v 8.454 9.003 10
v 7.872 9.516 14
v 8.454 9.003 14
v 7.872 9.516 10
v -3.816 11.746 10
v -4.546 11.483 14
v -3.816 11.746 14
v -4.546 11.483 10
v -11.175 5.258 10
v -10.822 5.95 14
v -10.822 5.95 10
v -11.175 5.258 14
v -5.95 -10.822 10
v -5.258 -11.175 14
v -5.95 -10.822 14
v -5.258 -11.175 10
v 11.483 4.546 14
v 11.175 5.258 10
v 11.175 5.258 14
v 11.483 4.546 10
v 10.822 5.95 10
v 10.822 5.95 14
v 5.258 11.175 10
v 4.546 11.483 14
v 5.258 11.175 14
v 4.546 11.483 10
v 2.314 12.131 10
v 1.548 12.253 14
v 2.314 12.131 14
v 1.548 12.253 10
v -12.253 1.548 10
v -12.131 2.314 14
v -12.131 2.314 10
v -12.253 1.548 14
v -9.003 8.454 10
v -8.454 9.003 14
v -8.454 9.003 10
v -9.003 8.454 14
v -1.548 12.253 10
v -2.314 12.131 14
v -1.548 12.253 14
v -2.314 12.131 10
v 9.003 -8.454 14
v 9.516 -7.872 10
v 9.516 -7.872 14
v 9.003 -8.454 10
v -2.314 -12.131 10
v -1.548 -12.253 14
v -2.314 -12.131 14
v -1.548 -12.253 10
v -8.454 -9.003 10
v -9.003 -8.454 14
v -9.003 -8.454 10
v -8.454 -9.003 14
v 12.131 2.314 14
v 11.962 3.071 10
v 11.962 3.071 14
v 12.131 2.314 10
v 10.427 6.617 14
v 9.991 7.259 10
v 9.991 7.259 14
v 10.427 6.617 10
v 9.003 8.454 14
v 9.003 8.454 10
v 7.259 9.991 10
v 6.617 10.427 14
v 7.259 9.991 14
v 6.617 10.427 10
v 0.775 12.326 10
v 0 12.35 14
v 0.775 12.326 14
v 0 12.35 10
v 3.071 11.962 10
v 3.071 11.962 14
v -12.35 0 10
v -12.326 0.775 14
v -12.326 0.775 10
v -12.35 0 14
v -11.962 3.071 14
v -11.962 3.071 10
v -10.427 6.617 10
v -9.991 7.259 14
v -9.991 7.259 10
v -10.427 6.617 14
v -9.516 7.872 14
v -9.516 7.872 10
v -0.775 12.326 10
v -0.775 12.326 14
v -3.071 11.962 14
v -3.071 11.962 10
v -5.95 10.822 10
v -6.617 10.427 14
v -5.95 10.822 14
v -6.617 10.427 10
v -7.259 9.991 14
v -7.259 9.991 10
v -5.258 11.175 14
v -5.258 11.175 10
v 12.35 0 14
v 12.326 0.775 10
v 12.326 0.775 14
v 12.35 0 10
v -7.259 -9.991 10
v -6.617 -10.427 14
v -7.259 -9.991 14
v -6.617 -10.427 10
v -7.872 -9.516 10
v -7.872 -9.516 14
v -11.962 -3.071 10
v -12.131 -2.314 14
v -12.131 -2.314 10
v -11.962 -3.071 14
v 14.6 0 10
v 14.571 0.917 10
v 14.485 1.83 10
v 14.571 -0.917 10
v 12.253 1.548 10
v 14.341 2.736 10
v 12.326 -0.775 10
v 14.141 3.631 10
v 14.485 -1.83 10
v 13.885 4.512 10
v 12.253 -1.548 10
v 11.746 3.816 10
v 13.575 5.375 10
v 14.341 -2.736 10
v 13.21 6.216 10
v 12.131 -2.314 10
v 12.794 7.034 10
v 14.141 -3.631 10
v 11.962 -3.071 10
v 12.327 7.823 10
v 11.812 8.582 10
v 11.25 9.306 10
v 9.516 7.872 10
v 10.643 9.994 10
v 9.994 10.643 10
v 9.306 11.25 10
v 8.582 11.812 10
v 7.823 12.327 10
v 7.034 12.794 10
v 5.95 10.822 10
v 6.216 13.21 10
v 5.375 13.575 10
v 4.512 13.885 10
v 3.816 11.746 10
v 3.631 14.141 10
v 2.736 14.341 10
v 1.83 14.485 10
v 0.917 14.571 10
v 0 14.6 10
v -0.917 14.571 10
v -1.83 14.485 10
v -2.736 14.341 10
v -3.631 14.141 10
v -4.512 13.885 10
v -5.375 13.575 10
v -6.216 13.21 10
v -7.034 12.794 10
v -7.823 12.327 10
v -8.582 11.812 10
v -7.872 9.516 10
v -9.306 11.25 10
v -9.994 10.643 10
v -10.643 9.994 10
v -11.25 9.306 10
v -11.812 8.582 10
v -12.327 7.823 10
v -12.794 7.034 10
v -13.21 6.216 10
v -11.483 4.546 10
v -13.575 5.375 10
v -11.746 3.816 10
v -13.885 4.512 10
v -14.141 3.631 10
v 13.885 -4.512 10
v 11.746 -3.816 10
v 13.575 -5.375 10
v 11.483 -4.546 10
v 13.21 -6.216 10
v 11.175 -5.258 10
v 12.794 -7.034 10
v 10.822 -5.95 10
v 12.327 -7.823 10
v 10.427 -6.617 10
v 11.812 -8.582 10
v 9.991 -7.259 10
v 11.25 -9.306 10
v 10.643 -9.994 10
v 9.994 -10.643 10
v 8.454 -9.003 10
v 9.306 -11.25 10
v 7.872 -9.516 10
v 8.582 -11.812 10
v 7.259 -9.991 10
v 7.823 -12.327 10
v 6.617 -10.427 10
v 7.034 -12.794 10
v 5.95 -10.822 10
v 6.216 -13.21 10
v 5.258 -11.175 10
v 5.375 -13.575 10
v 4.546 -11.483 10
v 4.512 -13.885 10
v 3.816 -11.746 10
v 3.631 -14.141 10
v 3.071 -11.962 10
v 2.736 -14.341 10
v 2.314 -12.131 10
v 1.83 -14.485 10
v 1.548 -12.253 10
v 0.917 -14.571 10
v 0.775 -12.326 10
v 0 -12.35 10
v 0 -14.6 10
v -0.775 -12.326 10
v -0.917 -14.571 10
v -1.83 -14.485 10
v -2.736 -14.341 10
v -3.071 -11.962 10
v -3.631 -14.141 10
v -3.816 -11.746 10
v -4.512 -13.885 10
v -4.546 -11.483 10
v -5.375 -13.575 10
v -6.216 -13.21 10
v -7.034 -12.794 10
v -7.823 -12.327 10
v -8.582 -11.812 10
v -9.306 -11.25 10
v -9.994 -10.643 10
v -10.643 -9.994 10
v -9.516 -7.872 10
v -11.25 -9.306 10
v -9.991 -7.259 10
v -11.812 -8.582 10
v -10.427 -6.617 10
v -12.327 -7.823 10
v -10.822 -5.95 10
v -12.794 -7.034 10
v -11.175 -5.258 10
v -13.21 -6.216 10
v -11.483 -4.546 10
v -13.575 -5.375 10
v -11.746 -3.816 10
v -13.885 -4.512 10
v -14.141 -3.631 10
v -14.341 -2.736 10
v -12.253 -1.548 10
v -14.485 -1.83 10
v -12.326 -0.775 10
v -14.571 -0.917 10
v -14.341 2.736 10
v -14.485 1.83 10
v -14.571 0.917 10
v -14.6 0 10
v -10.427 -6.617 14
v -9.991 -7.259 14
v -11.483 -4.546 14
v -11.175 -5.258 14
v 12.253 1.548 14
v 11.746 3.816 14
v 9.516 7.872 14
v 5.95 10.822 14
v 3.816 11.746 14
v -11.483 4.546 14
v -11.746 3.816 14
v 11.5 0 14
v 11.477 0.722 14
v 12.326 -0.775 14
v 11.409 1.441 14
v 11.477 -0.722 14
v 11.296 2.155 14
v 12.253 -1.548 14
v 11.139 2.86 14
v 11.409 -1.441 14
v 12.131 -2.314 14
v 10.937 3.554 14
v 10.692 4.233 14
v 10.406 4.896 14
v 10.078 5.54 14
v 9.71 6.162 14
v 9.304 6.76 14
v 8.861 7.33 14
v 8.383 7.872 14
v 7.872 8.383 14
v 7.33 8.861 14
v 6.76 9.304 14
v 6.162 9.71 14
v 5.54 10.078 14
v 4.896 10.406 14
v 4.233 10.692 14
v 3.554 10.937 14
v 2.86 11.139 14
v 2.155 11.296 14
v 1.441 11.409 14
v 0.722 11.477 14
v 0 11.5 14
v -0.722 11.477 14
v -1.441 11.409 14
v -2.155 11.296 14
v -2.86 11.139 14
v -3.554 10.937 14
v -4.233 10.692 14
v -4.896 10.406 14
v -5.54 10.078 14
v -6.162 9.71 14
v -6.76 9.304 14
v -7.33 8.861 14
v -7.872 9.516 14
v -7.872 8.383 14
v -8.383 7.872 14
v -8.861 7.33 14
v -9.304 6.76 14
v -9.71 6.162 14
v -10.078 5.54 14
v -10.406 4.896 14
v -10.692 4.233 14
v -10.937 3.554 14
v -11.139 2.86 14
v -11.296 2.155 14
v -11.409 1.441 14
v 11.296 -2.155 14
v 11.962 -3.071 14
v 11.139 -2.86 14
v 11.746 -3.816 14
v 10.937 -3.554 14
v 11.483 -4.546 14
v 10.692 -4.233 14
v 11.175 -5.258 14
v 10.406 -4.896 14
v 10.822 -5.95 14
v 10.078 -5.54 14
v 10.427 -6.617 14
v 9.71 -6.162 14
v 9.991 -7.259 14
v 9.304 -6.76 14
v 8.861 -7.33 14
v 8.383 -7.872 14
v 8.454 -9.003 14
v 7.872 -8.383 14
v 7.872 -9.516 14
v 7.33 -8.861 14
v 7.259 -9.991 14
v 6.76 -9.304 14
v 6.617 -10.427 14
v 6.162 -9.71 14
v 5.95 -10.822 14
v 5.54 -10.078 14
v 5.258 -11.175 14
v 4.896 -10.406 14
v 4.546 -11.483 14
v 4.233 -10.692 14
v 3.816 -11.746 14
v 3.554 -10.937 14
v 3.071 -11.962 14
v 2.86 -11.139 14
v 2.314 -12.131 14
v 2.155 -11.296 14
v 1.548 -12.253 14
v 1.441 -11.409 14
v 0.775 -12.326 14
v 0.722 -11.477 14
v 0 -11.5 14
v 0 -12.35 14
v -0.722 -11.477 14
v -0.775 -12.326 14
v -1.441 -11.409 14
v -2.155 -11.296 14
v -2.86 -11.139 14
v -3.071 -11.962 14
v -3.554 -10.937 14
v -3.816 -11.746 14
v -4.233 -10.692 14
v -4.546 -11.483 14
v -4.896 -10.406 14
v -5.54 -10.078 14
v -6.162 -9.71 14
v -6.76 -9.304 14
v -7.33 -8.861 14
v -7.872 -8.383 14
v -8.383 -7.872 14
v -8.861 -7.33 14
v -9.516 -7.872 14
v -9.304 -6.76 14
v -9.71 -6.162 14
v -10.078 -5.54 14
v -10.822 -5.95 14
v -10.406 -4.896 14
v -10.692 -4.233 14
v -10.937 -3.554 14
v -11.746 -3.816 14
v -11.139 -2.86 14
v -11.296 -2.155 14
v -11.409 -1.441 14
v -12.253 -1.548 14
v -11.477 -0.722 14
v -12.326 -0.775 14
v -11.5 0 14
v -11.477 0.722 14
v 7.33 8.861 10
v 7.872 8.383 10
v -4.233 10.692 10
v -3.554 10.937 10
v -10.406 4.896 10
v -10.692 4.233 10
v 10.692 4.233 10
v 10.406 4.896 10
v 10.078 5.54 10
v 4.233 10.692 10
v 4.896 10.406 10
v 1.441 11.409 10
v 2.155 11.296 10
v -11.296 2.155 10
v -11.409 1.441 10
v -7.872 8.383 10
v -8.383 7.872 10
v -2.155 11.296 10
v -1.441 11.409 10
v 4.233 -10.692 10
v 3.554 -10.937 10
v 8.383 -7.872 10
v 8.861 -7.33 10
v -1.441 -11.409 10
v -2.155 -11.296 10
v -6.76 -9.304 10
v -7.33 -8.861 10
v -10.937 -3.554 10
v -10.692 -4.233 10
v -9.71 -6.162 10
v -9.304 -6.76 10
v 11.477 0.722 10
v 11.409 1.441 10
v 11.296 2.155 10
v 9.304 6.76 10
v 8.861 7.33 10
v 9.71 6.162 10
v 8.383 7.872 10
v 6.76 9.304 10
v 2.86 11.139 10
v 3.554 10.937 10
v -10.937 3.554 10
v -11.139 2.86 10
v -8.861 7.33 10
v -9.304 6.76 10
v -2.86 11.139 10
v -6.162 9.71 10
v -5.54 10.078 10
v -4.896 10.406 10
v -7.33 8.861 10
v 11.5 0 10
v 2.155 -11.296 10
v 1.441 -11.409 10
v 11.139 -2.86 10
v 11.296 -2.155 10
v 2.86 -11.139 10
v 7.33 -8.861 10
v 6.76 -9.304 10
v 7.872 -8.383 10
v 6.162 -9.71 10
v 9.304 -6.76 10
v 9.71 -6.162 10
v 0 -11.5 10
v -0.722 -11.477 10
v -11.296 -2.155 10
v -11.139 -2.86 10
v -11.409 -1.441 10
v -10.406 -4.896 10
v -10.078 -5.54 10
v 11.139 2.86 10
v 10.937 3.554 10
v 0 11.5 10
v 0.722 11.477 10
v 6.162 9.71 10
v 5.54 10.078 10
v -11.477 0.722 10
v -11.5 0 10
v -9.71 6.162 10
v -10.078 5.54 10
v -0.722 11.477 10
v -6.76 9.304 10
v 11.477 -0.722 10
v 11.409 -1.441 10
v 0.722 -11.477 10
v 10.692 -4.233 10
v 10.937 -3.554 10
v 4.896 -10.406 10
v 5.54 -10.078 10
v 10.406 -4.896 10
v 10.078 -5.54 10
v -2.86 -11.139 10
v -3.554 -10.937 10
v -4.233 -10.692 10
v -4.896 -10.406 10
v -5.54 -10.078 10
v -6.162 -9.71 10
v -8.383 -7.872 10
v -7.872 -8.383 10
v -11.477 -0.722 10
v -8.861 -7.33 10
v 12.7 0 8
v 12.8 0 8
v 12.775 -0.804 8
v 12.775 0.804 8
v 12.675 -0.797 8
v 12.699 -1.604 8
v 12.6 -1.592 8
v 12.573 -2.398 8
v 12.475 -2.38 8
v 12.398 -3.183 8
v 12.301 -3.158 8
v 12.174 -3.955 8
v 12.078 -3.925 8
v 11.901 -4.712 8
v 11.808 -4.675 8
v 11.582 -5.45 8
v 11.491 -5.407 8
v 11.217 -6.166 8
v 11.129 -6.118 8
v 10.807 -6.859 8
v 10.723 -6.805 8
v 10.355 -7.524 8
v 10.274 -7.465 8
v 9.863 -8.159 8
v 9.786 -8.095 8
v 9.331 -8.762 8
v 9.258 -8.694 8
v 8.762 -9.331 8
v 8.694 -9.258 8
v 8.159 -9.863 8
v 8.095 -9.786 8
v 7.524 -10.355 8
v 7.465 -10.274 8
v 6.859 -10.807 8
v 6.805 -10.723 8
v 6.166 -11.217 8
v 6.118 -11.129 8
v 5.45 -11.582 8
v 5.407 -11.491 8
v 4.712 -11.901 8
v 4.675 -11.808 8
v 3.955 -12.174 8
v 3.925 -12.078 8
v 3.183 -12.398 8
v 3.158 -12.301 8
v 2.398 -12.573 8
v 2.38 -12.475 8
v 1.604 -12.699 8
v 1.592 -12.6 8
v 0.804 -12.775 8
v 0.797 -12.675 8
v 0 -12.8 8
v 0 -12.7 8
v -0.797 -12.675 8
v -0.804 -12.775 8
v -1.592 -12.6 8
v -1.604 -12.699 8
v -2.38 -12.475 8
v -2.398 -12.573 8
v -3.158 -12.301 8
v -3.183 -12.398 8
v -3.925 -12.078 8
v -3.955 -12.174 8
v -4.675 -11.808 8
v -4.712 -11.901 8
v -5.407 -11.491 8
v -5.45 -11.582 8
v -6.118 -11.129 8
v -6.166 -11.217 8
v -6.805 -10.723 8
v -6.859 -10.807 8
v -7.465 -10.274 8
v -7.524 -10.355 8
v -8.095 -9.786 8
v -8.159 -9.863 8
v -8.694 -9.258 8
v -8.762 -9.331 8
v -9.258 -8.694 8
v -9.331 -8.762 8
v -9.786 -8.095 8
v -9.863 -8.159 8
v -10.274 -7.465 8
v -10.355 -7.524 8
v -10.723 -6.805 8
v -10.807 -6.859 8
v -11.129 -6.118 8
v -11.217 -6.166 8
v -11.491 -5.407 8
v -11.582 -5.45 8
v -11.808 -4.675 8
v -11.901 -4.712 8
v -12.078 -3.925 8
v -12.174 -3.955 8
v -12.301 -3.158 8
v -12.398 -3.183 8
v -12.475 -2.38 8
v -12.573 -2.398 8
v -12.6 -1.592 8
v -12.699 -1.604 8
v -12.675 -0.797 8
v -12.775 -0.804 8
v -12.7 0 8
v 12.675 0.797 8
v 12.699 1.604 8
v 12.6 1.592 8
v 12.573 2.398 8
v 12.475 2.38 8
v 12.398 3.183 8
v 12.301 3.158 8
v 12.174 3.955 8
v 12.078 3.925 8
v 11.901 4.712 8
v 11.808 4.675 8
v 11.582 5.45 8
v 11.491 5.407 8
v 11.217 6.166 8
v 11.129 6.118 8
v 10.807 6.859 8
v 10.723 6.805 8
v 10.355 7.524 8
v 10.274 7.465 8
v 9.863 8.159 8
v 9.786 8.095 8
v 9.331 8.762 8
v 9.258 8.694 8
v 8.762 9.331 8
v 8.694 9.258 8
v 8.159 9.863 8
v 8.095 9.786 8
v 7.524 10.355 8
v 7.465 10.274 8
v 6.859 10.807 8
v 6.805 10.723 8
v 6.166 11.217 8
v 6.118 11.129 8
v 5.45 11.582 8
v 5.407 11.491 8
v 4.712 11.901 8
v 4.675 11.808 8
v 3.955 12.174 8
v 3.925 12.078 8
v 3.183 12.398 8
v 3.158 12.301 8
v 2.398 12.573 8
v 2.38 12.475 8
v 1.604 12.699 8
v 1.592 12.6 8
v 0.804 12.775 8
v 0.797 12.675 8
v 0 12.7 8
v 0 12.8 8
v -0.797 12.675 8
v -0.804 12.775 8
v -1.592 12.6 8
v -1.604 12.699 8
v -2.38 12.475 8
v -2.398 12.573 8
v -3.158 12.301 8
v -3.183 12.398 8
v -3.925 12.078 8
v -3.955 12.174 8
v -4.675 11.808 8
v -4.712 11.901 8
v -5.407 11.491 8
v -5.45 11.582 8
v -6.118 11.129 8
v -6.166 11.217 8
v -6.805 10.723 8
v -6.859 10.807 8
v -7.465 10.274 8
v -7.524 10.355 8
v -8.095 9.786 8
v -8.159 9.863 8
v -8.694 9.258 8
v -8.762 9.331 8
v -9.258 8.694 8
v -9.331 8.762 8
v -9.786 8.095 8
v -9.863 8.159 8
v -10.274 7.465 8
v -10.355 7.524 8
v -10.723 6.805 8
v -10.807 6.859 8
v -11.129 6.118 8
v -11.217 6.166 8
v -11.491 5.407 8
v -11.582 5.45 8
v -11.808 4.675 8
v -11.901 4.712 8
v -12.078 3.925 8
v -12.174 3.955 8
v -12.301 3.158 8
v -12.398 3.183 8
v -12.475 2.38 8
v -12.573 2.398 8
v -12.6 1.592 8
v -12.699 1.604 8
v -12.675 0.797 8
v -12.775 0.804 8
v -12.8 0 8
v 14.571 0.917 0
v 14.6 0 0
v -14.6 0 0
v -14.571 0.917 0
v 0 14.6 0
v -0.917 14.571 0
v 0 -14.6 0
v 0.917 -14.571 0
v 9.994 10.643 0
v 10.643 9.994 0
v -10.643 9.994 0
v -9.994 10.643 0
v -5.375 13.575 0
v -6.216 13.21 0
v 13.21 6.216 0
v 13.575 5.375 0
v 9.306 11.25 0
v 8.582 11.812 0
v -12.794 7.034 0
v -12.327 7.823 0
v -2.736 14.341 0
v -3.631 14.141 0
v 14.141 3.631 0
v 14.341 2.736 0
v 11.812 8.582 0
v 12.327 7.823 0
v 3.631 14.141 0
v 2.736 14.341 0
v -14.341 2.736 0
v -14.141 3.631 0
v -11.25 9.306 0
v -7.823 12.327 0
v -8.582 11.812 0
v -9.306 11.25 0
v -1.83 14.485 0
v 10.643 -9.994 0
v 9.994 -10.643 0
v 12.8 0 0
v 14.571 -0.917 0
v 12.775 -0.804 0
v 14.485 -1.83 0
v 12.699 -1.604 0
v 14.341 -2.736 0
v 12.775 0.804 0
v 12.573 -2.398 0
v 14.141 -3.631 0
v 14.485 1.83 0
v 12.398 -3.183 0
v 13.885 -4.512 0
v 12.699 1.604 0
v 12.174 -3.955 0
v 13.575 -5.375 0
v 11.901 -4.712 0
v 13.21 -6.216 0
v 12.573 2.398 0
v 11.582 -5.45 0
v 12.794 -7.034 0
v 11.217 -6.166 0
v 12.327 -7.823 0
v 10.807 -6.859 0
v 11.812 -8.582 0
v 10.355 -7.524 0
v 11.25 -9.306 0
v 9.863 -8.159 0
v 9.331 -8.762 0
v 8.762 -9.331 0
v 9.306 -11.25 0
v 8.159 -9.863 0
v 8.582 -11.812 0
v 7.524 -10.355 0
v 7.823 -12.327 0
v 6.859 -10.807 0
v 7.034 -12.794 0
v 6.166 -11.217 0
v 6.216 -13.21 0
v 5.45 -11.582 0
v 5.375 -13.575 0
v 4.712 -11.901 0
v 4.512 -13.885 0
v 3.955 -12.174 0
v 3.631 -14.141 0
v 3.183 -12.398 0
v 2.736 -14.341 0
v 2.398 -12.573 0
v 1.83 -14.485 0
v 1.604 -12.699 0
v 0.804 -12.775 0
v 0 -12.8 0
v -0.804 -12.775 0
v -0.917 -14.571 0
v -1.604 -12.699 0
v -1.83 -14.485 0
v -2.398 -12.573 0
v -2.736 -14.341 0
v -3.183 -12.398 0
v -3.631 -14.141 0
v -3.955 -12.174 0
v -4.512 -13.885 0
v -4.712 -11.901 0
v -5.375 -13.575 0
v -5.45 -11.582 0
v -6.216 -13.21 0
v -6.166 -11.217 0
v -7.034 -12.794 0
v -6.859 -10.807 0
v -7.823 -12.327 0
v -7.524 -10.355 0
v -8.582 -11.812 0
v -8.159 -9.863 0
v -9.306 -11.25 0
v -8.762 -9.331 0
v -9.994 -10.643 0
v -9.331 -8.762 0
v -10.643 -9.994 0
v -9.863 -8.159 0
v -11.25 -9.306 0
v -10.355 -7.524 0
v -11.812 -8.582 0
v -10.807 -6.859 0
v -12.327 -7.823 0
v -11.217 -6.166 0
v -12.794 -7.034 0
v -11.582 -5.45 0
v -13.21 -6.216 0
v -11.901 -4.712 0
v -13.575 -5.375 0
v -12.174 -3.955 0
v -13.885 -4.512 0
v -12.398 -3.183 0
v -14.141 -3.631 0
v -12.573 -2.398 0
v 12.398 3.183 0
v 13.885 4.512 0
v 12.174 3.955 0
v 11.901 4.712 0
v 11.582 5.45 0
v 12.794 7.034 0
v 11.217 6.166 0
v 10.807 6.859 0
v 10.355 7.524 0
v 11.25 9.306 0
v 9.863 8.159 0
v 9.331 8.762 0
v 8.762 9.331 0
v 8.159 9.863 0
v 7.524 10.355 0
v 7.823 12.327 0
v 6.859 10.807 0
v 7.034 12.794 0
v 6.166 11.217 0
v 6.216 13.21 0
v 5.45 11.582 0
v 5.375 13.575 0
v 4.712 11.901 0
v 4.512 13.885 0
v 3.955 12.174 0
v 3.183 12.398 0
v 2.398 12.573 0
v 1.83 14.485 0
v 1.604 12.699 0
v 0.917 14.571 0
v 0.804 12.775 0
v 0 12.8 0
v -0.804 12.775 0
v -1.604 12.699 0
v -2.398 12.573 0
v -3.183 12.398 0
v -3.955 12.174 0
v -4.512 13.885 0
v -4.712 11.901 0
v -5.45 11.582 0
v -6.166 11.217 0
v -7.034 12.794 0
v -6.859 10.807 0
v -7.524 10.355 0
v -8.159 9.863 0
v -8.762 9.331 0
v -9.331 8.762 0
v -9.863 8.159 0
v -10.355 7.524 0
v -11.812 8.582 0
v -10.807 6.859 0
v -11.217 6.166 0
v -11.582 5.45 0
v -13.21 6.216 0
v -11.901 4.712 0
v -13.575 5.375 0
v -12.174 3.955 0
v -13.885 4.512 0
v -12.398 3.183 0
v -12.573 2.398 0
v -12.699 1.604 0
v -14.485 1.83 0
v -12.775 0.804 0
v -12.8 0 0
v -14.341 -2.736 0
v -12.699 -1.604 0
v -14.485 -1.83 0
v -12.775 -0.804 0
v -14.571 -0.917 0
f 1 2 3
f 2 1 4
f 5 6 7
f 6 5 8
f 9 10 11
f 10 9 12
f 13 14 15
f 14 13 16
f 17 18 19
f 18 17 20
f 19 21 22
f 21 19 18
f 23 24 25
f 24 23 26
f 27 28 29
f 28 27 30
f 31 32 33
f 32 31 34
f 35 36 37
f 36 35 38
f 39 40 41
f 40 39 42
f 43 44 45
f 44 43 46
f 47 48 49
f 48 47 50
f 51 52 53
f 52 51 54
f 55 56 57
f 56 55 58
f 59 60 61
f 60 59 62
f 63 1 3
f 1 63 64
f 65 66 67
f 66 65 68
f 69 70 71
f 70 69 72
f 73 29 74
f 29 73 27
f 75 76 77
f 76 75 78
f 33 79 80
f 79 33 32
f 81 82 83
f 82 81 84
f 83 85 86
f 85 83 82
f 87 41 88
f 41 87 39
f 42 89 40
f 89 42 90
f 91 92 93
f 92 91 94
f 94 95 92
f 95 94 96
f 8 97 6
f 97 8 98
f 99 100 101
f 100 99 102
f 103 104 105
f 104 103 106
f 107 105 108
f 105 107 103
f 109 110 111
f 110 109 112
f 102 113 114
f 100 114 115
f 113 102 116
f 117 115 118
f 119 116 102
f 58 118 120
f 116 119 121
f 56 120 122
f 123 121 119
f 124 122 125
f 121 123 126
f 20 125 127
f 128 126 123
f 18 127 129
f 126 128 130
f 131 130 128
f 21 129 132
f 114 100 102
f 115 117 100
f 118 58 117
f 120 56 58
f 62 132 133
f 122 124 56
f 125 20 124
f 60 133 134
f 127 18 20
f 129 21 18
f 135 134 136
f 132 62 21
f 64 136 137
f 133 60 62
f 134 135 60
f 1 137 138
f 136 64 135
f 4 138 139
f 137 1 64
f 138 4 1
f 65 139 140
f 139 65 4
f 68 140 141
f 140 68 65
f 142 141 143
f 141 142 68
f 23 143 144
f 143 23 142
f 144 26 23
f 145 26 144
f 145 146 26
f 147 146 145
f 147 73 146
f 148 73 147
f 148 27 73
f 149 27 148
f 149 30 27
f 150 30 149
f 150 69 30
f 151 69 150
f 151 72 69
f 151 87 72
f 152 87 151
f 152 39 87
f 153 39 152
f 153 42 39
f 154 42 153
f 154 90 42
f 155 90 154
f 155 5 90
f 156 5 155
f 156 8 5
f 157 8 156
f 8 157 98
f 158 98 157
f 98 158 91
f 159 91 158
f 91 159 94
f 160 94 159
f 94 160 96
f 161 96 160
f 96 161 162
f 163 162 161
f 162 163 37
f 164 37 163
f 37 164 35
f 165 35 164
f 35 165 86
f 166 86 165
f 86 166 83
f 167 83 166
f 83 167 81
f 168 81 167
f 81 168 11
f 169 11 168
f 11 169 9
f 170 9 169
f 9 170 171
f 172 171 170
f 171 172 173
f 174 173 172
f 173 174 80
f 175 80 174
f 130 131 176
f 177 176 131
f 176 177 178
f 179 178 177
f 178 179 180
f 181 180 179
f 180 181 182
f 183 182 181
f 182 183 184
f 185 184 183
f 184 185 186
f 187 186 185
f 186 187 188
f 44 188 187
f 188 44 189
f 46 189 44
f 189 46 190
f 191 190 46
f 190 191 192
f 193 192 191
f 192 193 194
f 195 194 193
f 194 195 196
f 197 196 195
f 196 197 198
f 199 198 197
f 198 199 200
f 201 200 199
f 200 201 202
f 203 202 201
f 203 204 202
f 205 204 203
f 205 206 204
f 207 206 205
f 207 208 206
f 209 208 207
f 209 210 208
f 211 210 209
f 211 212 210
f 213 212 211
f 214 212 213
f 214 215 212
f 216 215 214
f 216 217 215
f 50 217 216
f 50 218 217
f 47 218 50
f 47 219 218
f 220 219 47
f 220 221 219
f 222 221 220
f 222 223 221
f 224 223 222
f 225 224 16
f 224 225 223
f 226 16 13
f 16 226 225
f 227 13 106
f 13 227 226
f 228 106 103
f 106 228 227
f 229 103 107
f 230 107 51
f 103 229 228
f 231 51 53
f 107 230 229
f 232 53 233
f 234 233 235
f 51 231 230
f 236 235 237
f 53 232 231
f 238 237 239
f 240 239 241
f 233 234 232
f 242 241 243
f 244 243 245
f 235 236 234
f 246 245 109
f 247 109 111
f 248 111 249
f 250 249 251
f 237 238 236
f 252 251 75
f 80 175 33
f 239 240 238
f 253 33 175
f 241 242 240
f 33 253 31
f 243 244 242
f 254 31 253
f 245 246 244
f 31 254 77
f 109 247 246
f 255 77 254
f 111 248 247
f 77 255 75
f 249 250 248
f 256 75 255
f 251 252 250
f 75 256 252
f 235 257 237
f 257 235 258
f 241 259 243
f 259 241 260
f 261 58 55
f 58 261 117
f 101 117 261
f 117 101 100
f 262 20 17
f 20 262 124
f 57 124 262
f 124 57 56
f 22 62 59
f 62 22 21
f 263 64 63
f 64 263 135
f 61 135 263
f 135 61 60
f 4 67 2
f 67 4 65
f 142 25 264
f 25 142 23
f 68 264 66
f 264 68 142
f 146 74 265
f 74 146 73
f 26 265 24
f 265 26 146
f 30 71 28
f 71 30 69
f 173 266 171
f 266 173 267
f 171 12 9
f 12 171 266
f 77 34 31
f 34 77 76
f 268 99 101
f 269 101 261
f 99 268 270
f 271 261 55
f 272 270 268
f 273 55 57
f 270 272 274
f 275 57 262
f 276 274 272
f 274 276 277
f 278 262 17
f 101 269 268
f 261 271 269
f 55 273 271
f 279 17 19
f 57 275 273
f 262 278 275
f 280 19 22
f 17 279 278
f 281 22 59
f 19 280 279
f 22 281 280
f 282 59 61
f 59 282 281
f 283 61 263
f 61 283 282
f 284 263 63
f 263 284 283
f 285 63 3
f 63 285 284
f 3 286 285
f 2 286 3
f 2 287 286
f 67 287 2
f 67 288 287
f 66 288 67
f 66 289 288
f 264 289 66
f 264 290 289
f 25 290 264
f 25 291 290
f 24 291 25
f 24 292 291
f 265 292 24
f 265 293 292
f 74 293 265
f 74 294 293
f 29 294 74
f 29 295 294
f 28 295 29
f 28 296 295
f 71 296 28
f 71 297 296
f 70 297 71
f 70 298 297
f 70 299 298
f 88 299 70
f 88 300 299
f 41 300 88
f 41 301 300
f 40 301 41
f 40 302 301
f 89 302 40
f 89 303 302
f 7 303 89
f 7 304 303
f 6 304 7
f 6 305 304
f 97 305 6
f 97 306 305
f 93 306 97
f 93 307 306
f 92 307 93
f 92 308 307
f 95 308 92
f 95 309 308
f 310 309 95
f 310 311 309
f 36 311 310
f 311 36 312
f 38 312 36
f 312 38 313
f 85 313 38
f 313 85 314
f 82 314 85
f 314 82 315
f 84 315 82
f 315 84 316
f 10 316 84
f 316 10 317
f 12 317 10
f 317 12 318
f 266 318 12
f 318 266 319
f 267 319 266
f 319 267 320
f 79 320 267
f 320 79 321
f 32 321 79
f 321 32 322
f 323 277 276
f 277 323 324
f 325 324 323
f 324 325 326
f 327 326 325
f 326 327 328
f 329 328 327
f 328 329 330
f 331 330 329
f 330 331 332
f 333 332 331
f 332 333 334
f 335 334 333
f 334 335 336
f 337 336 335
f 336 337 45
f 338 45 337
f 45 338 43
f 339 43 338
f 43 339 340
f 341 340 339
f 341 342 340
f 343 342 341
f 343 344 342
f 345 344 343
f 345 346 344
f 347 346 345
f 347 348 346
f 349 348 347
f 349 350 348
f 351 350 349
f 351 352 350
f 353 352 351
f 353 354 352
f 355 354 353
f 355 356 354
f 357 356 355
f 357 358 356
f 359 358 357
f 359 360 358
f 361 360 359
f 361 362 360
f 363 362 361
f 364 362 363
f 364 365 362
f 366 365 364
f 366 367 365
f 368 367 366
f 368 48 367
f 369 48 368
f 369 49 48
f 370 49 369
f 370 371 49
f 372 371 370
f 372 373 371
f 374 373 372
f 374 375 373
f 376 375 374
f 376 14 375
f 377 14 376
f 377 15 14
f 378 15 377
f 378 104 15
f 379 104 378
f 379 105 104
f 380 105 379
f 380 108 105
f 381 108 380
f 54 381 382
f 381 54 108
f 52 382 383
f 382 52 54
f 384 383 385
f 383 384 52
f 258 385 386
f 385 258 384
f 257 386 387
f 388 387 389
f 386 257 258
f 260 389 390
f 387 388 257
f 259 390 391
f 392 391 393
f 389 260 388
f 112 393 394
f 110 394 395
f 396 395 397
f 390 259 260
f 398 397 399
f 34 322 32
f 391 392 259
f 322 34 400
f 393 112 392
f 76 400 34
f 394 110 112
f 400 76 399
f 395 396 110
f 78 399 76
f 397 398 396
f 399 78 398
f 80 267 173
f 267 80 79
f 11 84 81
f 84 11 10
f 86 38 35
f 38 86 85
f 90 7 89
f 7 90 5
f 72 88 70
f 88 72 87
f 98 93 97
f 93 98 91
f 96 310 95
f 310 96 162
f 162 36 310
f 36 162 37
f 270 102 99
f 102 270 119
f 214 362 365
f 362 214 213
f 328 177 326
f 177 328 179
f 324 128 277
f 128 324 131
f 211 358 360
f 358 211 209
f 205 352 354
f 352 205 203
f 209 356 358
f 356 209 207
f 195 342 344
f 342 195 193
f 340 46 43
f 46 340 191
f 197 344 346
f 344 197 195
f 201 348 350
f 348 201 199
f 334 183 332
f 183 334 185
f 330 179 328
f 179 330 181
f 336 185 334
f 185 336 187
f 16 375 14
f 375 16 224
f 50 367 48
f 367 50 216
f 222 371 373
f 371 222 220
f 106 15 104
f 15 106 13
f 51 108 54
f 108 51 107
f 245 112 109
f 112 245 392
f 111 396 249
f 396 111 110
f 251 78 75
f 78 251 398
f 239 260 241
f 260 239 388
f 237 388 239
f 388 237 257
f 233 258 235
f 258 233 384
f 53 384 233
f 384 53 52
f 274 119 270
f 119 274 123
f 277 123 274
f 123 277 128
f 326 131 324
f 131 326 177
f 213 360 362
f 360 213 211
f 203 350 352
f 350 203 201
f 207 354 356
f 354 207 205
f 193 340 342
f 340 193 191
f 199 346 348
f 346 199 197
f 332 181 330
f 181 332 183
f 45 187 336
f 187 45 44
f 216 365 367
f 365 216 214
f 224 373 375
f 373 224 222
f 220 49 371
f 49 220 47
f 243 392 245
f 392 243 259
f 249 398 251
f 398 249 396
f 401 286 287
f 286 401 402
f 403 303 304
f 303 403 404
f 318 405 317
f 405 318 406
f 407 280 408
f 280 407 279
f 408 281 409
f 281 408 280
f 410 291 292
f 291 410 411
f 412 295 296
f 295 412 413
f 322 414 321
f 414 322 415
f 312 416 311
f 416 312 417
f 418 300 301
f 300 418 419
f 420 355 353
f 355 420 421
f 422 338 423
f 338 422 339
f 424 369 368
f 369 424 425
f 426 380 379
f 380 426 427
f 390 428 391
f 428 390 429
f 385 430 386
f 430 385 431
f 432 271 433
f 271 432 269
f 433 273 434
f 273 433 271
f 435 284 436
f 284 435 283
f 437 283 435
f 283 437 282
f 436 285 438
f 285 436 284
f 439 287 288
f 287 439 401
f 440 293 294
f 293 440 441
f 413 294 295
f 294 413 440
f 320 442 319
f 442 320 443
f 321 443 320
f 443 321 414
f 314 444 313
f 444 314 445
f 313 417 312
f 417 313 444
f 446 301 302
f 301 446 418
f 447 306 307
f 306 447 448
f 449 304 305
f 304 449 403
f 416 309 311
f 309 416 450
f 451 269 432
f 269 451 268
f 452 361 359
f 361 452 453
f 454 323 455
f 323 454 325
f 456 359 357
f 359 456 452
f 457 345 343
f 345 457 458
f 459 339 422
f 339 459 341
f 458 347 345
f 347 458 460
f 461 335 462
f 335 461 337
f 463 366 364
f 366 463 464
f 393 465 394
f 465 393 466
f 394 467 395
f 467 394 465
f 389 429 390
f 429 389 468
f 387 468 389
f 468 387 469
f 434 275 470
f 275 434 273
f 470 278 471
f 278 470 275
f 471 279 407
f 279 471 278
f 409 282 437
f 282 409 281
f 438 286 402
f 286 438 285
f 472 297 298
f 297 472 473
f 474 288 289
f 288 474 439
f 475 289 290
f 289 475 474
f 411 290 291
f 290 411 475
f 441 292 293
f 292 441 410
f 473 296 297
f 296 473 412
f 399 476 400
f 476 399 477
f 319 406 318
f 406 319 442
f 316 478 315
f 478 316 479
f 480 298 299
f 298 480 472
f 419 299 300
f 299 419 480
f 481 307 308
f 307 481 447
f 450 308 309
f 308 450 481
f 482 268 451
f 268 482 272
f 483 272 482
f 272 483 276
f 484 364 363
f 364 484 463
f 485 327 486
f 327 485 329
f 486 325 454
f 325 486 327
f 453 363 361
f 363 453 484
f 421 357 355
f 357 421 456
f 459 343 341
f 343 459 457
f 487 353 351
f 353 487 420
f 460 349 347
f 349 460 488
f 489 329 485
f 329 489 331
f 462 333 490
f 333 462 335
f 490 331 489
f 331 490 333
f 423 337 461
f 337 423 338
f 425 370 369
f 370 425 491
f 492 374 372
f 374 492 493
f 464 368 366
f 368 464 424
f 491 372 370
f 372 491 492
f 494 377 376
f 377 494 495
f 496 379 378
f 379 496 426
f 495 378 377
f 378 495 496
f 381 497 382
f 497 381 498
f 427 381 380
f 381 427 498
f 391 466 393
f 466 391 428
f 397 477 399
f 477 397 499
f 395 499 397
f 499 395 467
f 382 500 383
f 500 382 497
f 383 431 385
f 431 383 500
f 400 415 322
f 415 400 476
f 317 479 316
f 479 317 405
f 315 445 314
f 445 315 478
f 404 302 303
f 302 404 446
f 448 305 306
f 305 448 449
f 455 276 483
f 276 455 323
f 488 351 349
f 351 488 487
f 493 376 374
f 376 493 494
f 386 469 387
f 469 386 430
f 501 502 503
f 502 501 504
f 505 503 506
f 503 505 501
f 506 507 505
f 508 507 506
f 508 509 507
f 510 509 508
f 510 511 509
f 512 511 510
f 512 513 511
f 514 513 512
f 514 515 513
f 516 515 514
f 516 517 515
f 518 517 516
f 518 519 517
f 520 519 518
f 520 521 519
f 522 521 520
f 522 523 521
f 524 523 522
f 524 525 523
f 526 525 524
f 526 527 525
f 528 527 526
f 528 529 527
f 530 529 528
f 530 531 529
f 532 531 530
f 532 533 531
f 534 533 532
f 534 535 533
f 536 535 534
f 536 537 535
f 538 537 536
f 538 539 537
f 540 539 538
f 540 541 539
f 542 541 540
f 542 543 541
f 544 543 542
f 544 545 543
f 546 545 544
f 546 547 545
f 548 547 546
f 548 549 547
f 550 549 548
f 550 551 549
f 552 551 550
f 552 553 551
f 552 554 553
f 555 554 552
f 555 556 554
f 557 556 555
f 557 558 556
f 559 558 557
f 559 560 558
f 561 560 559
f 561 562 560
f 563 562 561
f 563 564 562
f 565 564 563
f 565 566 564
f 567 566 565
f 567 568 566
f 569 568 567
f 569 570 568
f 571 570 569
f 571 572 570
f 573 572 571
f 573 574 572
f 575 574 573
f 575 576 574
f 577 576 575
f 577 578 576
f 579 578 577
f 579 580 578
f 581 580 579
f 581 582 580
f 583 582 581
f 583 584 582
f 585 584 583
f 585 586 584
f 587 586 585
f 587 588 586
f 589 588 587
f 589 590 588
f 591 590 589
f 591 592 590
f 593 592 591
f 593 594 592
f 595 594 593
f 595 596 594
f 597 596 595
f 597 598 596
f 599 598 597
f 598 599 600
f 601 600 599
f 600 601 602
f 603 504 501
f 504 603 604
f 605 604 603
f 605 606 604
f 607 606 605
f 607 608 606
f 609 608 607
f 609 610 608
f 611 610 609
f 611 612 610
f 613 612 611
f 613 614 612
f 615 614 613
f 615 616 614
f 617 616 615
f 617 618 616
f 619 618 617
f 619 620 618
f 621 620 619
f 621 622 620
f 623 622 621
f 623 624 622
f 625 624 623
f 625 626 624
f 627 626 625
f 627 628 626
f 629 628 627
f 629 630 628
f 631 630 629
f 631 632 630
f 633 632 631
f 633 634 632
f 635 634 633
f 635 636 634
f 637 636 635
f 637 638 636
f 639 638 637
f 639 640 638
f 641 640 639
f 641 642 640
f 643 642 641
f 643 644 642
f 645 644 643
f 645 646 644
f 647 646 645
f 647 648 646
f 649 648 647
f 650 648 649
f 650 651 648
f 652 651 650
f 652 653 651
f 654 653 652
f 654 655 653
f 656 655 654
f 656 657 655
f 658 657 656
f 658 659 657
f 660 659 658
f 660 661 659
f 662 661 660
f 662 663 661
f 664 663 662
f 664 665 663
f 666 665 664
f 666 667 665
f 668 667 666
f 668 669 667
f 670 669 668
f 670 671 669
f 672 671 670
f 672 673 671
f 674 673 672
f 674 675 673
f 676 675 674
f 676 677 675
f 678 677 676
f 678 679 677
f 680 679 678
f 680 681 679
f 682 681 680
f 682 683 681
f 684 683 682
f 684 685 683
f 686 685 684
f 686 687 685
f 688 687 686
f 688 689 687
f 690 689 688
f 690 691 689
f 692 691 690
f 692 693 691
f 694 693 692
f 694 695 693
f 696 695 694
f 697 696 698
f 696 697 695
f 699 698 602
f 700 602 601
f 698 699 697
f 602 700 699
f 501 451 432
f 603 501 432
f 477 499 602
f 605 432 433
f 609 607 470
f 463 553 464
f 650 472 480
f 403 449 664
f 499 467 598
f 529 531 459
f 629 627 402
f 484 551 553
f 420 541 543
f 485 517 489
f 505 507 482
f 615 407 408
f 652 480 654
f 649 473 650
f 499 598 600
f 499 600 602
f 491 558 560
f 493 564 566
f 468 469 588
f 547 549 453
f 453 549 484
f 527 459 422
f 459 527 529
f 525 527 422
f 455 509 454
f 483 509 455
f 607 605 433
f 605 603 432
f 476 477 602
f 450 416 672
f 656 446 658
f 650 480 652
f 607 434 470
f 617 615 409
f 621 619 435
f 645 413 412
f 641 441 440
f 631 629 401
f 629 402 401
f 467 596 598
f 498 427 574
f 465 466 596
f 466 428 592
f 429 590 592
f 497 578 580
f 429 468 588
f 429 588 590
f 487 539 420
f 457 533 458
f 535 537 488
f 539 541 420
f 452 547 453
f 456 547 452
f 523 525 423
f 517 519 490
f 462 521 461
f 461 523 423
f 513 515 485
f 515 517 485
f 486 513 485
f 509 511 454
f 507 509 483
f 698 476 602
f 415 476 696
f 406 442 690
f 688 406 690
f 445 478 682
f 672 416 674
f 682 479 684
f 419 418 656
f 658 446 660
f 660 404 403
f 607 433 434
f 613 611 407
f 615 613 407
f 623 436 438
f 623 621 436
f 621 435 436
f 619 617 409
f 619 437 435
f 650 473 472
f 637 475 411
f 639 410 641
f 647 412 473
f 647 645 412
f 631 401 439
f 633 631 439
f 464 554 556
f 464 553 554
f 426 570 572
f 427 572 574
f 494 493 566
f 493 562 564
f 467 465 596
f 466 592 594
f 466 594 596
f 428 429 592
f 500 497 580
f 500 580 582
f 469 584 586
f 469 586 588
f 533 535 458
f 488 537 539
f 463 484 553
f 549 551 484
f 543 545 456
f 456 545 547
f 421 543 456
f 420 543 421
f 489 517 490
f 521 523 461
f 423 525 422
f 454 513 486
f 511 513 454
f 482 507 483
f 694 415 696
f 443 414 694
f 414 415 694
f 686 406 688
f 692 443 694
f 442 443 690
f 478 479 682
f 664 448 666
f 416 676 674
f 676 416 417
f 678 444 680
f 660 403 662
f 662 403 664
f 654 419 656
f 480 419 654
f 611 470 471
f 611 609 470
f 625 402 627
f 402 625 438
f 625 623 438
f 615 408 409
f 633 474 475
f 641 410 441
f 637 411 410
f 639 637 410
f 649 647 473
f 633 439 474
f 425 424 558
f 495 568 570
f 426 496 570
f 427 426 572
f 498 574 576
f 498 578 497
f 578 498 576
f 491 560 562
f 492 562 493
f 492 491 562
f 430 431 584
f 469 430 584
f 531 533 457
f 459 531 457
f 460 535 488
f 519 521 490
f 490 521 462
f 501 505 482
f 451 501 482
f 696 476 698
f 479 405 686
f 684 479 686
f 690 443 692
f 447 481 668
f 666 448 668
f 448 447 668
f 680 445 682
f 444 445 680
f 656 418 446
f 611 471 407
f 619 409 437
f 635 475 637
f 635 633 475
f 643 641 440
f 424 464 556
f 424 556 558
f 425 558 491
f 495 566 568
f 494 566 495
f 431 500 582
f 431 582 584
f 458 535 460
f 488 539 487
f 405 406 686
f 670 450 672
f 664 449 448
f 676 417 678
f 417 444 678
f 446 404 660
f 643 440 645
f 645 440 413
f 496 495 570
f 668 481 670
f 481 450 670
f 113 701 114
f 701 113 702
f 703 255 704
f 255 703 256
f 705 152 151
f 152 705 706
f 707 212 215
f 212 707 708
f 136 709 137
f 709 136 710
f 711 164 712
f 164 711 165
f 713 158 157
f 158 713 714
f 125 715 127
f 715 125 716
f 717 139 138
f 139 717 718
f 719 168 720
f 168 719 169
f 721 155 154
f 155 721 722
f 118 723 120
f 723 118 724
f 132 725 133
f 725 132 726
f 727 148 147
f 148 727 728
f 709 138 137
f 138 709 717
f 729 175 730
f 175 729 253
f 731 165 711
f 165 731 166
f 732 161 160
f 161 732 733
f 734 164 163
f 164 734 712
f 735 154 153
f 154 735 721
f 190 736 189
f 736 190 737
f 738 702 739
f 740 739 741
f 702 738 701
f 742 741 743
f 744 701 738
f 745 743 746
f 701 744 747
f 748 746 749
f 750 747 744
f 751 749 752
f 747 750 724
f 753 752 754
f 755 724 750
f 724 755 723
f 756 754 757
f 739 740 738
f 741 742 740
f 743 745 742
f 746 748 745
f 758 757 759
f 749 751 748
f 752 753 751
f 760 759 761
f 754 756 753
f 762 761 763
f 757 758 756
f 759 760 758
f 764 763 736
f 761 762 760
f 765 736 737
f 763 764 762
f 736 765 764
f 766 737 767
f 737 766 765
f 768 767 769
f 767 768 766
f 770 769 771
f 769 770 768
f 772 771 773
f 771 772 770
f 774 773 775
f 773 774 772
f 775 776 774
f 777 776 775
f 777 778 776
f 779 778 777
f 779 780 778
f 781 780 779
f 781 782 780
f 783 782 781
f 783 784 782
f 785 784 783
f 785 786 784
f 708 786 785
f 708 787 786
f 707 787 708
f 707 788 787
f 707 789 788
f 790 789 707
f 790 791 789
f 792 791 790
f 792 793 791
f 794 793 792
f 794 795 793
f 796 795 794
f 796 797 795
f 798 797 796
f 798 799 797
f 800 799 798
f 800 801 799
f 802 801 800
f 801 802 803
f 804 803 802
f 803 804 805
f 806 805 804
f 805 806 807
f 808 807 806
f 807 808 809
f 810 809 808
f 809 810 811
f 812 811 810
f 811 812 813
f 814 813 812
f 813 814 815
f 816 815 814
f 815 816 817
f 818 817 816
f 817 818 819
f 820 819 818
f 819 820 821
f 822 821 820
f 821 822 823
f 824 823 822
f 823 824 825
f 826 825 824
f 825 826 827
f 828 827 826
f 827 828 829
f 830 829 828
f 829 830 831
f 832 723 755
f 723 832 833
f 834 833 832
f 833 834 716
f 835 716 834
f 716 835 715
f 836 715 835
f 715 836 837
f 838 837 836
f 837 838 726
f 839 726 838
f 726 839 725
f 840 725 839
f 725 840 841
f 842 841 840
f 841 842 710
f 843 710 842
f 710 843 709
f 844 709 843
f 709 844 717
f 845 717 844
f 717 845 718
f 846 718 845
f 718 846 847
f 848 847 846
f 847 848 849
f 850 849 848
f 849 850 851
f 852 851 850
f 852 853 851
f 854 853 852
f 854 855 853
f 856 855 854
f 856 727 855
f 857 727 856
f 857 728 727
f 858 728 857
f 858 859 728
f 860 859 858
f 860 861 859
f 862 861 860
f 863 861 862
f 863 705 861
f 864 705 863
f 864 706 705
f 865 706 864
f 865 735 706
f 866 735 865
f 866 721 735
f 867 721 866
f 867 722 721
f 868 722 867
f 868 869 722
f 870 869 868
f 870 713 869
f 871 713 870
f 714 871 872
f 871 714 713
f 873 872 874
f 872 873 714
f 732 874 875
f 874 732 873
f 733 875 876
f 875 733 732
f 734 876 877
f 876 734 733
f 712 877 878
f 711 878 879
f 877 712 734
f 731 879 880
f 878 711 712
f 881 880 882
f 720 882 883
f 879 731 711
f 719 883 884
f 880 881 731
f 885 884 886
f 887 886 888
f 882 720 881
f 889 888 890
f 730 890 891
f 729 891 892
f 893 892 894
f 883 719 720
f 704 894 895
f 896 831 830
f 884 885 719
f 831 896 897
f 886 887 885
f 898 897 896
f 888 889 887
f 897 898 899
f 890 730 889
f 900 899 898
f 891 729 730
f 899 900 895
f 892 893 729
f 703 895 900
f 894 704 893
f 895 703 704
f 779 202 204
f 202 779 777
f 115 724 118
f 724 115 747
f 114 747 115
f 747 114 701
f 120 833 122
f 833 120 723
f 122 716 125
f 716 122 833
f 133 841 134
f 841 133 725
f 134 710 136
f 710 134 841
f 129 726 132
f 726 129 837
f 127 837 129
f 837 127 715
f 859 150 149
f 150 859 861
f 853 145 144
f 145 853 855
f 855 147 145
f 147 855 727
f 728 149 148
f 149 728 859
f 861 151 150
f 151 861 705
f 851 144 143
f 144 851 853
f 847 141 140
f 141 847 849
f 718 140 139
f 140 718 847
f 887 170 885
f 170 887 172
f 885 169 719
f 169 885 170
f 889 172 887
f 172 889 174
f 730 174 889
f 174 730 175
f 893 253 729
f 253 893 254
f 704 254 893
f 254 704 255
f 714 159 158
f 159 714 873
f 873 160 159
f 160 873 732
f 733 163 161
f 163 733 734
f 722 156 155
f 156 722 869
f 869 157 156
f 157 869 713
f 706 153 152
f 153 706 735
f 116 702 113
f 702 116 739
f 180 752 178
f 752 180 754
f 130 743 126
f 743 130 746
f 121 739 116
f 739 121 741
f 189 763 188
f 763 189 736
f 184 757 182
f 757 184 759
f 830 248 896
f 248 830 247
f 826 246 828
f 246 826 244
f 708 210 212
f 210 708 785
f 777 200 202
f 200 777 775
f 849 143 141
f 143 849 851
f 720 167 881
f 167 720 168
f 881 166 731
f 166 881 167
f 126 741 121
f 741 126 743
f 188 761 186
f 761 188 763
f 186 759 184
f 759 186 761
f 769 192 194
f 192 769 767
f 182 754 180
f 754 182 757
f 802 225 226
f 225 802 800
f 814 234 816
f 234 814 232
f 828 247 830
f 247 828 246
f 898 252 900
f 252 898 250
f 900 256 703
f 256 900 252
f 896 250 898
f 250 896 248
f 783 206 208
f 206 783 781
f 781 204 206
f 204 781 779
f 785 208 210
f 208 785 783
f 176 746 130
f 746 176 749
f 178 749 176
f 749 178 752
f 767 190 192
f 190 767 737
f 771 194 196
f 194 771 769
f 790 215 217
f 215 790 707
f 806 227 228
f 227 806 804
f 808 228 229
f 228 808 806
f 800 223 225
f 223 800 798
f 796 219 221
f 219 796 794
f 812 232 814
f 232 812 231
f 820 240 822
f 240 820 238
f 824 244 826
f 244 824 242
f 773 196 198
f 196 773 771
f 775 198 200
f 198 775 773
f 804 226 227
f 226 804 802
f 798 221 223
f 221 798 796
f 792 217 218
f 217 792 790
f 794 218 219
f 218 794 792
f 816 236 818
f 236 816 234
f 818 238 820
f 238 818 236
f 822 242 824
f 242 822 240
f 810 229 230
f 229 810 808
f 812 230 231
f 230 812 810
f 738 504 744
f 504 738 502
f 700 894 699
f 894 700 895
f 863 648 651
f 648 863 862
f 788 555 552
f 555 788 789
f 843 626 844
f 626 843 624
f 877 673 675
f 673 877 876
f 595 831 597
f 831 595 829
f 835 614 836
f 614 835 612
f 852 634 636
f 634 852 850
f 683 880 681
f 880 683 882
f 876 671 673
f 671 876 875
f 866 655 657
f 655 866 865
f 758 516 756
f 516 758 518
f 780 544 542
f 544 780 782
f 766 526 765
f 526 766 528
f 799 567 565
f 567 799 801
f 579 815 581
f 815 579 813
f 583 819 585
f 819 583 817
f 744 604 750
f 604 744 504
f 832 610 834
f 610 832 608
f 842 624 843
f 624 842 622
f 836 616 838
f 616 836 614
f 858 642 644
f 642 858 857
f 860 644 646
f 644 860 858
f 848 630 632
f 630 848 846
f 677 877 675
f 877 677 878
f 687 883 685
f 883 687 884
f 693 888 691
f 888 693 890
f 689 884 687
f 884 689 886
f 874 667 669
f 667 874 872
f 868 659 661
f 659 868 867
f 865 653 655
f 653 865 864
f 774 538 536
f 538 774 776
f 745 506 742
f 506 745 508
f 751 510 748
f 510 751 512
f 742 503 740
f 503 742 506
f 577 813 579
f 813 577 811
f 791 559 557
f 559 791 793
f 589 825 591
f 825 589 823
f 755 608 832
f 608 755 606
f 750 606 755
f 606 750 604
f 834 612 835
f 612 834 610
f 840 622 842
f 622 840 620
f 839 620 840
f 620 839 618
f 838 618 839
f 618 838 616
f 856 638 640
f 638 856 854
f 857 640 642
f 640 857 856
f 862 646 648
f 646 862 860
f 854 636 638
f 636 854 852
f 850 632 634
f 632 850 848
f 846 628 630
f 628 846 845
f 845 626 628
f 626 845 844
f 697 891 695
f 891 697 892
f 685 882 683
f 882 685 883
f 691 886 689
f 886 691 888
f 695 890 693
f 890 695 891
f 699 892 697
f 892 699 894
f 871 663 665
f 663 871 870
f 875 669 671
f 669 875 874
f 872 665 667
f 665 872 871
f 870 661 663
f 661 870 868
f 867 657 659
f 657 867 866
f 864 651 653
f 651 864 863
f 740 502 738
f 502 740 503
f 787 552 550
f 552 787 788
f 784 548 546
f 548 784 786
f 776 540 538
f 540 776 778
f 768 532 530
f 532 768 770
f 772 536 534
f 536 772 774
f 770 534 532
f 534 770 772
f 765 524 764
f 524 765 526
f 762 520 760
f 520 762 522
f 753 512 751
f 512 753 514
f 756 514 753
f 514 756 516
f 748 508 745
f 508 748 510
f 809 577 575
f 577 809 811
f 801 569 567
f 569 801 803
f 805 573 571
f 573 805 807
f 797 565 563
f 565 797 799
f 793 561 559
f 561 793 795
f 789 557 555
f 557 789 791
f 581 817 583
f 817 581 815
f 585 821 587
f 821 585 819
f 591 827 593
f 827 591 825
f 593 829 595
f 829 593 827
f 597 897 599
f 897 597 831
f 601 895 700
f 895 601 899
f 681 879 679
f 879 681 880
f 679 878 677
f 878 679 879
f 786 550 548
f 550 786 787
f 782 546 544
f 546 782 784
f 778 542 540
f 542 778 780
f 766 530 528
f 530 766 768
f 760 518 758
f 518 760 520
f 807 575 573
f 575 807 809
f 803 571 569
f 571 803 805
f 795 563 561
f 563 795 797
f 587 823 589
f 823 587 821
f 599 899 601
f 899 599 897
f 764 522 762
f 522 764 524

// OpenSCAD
//EXTENSION TUBES
$fn = 100;
tube_len = 10; // [4:100]
time = 0;

//-----------------------------------------------------------------------------
// Standard: c-mount male
// @param: inner_d = 23mm (for 0.3mm resolution printer)
// @paramL outer_d = 24.7mm
//
//-----------------------------------------------------------------------------
module cmount_male(len) {
	inner_d = 23;
	outer_d = 24.7;
	f_inner_d = 25.4;
	f_outer_d = 28.6;
	translate ([0, 0, len / 2 ]) {
		difference () {
			union () {
				cylinder(r = outer_d / 2, h = len, center = true);
			}
			cylinder(r = inner_d / 2, h = len + 1, center = true);
		}

		difference () {
			translate([0, 0, -(len / 2) - 1]) cylinder(r = f_outer_d / 2, h = 2, center = true);
			translate([0, 0, -(len / 2) - 1]) cylinder(r1 = f_inner_d / 2, r2 = inner_d / 2, h = 2, center = true);
		}	
	}
}

//-----------------------------------------------------------------------------
// Standard: c-mount female
// @param: inner_d = 26mm(for 0.3mm resolution printer) //CHANGINE
// @paramL outer_d = 29.2mm 
//
//-----------------------------------------------------------------------------
module cmount_female(len) {
	inner_d = 25.6;
	outer_d = 29.2;
	translate ([0, 0, (len / 2)]) {
		difference () {
			cylinder(r = outer_d / 2, h = len, center = true);
			cylinder(r = inner_d / 2, h = len + 1, center = true);
		}	
	}

}

module extension_tube (len = 10) {
	translate([0, 0, len]) cmount_male(4);
	translate([0, 0, 0]) cmount_female(len);
}

rotate([0, 0, time]) extension_tube(tube_len);
